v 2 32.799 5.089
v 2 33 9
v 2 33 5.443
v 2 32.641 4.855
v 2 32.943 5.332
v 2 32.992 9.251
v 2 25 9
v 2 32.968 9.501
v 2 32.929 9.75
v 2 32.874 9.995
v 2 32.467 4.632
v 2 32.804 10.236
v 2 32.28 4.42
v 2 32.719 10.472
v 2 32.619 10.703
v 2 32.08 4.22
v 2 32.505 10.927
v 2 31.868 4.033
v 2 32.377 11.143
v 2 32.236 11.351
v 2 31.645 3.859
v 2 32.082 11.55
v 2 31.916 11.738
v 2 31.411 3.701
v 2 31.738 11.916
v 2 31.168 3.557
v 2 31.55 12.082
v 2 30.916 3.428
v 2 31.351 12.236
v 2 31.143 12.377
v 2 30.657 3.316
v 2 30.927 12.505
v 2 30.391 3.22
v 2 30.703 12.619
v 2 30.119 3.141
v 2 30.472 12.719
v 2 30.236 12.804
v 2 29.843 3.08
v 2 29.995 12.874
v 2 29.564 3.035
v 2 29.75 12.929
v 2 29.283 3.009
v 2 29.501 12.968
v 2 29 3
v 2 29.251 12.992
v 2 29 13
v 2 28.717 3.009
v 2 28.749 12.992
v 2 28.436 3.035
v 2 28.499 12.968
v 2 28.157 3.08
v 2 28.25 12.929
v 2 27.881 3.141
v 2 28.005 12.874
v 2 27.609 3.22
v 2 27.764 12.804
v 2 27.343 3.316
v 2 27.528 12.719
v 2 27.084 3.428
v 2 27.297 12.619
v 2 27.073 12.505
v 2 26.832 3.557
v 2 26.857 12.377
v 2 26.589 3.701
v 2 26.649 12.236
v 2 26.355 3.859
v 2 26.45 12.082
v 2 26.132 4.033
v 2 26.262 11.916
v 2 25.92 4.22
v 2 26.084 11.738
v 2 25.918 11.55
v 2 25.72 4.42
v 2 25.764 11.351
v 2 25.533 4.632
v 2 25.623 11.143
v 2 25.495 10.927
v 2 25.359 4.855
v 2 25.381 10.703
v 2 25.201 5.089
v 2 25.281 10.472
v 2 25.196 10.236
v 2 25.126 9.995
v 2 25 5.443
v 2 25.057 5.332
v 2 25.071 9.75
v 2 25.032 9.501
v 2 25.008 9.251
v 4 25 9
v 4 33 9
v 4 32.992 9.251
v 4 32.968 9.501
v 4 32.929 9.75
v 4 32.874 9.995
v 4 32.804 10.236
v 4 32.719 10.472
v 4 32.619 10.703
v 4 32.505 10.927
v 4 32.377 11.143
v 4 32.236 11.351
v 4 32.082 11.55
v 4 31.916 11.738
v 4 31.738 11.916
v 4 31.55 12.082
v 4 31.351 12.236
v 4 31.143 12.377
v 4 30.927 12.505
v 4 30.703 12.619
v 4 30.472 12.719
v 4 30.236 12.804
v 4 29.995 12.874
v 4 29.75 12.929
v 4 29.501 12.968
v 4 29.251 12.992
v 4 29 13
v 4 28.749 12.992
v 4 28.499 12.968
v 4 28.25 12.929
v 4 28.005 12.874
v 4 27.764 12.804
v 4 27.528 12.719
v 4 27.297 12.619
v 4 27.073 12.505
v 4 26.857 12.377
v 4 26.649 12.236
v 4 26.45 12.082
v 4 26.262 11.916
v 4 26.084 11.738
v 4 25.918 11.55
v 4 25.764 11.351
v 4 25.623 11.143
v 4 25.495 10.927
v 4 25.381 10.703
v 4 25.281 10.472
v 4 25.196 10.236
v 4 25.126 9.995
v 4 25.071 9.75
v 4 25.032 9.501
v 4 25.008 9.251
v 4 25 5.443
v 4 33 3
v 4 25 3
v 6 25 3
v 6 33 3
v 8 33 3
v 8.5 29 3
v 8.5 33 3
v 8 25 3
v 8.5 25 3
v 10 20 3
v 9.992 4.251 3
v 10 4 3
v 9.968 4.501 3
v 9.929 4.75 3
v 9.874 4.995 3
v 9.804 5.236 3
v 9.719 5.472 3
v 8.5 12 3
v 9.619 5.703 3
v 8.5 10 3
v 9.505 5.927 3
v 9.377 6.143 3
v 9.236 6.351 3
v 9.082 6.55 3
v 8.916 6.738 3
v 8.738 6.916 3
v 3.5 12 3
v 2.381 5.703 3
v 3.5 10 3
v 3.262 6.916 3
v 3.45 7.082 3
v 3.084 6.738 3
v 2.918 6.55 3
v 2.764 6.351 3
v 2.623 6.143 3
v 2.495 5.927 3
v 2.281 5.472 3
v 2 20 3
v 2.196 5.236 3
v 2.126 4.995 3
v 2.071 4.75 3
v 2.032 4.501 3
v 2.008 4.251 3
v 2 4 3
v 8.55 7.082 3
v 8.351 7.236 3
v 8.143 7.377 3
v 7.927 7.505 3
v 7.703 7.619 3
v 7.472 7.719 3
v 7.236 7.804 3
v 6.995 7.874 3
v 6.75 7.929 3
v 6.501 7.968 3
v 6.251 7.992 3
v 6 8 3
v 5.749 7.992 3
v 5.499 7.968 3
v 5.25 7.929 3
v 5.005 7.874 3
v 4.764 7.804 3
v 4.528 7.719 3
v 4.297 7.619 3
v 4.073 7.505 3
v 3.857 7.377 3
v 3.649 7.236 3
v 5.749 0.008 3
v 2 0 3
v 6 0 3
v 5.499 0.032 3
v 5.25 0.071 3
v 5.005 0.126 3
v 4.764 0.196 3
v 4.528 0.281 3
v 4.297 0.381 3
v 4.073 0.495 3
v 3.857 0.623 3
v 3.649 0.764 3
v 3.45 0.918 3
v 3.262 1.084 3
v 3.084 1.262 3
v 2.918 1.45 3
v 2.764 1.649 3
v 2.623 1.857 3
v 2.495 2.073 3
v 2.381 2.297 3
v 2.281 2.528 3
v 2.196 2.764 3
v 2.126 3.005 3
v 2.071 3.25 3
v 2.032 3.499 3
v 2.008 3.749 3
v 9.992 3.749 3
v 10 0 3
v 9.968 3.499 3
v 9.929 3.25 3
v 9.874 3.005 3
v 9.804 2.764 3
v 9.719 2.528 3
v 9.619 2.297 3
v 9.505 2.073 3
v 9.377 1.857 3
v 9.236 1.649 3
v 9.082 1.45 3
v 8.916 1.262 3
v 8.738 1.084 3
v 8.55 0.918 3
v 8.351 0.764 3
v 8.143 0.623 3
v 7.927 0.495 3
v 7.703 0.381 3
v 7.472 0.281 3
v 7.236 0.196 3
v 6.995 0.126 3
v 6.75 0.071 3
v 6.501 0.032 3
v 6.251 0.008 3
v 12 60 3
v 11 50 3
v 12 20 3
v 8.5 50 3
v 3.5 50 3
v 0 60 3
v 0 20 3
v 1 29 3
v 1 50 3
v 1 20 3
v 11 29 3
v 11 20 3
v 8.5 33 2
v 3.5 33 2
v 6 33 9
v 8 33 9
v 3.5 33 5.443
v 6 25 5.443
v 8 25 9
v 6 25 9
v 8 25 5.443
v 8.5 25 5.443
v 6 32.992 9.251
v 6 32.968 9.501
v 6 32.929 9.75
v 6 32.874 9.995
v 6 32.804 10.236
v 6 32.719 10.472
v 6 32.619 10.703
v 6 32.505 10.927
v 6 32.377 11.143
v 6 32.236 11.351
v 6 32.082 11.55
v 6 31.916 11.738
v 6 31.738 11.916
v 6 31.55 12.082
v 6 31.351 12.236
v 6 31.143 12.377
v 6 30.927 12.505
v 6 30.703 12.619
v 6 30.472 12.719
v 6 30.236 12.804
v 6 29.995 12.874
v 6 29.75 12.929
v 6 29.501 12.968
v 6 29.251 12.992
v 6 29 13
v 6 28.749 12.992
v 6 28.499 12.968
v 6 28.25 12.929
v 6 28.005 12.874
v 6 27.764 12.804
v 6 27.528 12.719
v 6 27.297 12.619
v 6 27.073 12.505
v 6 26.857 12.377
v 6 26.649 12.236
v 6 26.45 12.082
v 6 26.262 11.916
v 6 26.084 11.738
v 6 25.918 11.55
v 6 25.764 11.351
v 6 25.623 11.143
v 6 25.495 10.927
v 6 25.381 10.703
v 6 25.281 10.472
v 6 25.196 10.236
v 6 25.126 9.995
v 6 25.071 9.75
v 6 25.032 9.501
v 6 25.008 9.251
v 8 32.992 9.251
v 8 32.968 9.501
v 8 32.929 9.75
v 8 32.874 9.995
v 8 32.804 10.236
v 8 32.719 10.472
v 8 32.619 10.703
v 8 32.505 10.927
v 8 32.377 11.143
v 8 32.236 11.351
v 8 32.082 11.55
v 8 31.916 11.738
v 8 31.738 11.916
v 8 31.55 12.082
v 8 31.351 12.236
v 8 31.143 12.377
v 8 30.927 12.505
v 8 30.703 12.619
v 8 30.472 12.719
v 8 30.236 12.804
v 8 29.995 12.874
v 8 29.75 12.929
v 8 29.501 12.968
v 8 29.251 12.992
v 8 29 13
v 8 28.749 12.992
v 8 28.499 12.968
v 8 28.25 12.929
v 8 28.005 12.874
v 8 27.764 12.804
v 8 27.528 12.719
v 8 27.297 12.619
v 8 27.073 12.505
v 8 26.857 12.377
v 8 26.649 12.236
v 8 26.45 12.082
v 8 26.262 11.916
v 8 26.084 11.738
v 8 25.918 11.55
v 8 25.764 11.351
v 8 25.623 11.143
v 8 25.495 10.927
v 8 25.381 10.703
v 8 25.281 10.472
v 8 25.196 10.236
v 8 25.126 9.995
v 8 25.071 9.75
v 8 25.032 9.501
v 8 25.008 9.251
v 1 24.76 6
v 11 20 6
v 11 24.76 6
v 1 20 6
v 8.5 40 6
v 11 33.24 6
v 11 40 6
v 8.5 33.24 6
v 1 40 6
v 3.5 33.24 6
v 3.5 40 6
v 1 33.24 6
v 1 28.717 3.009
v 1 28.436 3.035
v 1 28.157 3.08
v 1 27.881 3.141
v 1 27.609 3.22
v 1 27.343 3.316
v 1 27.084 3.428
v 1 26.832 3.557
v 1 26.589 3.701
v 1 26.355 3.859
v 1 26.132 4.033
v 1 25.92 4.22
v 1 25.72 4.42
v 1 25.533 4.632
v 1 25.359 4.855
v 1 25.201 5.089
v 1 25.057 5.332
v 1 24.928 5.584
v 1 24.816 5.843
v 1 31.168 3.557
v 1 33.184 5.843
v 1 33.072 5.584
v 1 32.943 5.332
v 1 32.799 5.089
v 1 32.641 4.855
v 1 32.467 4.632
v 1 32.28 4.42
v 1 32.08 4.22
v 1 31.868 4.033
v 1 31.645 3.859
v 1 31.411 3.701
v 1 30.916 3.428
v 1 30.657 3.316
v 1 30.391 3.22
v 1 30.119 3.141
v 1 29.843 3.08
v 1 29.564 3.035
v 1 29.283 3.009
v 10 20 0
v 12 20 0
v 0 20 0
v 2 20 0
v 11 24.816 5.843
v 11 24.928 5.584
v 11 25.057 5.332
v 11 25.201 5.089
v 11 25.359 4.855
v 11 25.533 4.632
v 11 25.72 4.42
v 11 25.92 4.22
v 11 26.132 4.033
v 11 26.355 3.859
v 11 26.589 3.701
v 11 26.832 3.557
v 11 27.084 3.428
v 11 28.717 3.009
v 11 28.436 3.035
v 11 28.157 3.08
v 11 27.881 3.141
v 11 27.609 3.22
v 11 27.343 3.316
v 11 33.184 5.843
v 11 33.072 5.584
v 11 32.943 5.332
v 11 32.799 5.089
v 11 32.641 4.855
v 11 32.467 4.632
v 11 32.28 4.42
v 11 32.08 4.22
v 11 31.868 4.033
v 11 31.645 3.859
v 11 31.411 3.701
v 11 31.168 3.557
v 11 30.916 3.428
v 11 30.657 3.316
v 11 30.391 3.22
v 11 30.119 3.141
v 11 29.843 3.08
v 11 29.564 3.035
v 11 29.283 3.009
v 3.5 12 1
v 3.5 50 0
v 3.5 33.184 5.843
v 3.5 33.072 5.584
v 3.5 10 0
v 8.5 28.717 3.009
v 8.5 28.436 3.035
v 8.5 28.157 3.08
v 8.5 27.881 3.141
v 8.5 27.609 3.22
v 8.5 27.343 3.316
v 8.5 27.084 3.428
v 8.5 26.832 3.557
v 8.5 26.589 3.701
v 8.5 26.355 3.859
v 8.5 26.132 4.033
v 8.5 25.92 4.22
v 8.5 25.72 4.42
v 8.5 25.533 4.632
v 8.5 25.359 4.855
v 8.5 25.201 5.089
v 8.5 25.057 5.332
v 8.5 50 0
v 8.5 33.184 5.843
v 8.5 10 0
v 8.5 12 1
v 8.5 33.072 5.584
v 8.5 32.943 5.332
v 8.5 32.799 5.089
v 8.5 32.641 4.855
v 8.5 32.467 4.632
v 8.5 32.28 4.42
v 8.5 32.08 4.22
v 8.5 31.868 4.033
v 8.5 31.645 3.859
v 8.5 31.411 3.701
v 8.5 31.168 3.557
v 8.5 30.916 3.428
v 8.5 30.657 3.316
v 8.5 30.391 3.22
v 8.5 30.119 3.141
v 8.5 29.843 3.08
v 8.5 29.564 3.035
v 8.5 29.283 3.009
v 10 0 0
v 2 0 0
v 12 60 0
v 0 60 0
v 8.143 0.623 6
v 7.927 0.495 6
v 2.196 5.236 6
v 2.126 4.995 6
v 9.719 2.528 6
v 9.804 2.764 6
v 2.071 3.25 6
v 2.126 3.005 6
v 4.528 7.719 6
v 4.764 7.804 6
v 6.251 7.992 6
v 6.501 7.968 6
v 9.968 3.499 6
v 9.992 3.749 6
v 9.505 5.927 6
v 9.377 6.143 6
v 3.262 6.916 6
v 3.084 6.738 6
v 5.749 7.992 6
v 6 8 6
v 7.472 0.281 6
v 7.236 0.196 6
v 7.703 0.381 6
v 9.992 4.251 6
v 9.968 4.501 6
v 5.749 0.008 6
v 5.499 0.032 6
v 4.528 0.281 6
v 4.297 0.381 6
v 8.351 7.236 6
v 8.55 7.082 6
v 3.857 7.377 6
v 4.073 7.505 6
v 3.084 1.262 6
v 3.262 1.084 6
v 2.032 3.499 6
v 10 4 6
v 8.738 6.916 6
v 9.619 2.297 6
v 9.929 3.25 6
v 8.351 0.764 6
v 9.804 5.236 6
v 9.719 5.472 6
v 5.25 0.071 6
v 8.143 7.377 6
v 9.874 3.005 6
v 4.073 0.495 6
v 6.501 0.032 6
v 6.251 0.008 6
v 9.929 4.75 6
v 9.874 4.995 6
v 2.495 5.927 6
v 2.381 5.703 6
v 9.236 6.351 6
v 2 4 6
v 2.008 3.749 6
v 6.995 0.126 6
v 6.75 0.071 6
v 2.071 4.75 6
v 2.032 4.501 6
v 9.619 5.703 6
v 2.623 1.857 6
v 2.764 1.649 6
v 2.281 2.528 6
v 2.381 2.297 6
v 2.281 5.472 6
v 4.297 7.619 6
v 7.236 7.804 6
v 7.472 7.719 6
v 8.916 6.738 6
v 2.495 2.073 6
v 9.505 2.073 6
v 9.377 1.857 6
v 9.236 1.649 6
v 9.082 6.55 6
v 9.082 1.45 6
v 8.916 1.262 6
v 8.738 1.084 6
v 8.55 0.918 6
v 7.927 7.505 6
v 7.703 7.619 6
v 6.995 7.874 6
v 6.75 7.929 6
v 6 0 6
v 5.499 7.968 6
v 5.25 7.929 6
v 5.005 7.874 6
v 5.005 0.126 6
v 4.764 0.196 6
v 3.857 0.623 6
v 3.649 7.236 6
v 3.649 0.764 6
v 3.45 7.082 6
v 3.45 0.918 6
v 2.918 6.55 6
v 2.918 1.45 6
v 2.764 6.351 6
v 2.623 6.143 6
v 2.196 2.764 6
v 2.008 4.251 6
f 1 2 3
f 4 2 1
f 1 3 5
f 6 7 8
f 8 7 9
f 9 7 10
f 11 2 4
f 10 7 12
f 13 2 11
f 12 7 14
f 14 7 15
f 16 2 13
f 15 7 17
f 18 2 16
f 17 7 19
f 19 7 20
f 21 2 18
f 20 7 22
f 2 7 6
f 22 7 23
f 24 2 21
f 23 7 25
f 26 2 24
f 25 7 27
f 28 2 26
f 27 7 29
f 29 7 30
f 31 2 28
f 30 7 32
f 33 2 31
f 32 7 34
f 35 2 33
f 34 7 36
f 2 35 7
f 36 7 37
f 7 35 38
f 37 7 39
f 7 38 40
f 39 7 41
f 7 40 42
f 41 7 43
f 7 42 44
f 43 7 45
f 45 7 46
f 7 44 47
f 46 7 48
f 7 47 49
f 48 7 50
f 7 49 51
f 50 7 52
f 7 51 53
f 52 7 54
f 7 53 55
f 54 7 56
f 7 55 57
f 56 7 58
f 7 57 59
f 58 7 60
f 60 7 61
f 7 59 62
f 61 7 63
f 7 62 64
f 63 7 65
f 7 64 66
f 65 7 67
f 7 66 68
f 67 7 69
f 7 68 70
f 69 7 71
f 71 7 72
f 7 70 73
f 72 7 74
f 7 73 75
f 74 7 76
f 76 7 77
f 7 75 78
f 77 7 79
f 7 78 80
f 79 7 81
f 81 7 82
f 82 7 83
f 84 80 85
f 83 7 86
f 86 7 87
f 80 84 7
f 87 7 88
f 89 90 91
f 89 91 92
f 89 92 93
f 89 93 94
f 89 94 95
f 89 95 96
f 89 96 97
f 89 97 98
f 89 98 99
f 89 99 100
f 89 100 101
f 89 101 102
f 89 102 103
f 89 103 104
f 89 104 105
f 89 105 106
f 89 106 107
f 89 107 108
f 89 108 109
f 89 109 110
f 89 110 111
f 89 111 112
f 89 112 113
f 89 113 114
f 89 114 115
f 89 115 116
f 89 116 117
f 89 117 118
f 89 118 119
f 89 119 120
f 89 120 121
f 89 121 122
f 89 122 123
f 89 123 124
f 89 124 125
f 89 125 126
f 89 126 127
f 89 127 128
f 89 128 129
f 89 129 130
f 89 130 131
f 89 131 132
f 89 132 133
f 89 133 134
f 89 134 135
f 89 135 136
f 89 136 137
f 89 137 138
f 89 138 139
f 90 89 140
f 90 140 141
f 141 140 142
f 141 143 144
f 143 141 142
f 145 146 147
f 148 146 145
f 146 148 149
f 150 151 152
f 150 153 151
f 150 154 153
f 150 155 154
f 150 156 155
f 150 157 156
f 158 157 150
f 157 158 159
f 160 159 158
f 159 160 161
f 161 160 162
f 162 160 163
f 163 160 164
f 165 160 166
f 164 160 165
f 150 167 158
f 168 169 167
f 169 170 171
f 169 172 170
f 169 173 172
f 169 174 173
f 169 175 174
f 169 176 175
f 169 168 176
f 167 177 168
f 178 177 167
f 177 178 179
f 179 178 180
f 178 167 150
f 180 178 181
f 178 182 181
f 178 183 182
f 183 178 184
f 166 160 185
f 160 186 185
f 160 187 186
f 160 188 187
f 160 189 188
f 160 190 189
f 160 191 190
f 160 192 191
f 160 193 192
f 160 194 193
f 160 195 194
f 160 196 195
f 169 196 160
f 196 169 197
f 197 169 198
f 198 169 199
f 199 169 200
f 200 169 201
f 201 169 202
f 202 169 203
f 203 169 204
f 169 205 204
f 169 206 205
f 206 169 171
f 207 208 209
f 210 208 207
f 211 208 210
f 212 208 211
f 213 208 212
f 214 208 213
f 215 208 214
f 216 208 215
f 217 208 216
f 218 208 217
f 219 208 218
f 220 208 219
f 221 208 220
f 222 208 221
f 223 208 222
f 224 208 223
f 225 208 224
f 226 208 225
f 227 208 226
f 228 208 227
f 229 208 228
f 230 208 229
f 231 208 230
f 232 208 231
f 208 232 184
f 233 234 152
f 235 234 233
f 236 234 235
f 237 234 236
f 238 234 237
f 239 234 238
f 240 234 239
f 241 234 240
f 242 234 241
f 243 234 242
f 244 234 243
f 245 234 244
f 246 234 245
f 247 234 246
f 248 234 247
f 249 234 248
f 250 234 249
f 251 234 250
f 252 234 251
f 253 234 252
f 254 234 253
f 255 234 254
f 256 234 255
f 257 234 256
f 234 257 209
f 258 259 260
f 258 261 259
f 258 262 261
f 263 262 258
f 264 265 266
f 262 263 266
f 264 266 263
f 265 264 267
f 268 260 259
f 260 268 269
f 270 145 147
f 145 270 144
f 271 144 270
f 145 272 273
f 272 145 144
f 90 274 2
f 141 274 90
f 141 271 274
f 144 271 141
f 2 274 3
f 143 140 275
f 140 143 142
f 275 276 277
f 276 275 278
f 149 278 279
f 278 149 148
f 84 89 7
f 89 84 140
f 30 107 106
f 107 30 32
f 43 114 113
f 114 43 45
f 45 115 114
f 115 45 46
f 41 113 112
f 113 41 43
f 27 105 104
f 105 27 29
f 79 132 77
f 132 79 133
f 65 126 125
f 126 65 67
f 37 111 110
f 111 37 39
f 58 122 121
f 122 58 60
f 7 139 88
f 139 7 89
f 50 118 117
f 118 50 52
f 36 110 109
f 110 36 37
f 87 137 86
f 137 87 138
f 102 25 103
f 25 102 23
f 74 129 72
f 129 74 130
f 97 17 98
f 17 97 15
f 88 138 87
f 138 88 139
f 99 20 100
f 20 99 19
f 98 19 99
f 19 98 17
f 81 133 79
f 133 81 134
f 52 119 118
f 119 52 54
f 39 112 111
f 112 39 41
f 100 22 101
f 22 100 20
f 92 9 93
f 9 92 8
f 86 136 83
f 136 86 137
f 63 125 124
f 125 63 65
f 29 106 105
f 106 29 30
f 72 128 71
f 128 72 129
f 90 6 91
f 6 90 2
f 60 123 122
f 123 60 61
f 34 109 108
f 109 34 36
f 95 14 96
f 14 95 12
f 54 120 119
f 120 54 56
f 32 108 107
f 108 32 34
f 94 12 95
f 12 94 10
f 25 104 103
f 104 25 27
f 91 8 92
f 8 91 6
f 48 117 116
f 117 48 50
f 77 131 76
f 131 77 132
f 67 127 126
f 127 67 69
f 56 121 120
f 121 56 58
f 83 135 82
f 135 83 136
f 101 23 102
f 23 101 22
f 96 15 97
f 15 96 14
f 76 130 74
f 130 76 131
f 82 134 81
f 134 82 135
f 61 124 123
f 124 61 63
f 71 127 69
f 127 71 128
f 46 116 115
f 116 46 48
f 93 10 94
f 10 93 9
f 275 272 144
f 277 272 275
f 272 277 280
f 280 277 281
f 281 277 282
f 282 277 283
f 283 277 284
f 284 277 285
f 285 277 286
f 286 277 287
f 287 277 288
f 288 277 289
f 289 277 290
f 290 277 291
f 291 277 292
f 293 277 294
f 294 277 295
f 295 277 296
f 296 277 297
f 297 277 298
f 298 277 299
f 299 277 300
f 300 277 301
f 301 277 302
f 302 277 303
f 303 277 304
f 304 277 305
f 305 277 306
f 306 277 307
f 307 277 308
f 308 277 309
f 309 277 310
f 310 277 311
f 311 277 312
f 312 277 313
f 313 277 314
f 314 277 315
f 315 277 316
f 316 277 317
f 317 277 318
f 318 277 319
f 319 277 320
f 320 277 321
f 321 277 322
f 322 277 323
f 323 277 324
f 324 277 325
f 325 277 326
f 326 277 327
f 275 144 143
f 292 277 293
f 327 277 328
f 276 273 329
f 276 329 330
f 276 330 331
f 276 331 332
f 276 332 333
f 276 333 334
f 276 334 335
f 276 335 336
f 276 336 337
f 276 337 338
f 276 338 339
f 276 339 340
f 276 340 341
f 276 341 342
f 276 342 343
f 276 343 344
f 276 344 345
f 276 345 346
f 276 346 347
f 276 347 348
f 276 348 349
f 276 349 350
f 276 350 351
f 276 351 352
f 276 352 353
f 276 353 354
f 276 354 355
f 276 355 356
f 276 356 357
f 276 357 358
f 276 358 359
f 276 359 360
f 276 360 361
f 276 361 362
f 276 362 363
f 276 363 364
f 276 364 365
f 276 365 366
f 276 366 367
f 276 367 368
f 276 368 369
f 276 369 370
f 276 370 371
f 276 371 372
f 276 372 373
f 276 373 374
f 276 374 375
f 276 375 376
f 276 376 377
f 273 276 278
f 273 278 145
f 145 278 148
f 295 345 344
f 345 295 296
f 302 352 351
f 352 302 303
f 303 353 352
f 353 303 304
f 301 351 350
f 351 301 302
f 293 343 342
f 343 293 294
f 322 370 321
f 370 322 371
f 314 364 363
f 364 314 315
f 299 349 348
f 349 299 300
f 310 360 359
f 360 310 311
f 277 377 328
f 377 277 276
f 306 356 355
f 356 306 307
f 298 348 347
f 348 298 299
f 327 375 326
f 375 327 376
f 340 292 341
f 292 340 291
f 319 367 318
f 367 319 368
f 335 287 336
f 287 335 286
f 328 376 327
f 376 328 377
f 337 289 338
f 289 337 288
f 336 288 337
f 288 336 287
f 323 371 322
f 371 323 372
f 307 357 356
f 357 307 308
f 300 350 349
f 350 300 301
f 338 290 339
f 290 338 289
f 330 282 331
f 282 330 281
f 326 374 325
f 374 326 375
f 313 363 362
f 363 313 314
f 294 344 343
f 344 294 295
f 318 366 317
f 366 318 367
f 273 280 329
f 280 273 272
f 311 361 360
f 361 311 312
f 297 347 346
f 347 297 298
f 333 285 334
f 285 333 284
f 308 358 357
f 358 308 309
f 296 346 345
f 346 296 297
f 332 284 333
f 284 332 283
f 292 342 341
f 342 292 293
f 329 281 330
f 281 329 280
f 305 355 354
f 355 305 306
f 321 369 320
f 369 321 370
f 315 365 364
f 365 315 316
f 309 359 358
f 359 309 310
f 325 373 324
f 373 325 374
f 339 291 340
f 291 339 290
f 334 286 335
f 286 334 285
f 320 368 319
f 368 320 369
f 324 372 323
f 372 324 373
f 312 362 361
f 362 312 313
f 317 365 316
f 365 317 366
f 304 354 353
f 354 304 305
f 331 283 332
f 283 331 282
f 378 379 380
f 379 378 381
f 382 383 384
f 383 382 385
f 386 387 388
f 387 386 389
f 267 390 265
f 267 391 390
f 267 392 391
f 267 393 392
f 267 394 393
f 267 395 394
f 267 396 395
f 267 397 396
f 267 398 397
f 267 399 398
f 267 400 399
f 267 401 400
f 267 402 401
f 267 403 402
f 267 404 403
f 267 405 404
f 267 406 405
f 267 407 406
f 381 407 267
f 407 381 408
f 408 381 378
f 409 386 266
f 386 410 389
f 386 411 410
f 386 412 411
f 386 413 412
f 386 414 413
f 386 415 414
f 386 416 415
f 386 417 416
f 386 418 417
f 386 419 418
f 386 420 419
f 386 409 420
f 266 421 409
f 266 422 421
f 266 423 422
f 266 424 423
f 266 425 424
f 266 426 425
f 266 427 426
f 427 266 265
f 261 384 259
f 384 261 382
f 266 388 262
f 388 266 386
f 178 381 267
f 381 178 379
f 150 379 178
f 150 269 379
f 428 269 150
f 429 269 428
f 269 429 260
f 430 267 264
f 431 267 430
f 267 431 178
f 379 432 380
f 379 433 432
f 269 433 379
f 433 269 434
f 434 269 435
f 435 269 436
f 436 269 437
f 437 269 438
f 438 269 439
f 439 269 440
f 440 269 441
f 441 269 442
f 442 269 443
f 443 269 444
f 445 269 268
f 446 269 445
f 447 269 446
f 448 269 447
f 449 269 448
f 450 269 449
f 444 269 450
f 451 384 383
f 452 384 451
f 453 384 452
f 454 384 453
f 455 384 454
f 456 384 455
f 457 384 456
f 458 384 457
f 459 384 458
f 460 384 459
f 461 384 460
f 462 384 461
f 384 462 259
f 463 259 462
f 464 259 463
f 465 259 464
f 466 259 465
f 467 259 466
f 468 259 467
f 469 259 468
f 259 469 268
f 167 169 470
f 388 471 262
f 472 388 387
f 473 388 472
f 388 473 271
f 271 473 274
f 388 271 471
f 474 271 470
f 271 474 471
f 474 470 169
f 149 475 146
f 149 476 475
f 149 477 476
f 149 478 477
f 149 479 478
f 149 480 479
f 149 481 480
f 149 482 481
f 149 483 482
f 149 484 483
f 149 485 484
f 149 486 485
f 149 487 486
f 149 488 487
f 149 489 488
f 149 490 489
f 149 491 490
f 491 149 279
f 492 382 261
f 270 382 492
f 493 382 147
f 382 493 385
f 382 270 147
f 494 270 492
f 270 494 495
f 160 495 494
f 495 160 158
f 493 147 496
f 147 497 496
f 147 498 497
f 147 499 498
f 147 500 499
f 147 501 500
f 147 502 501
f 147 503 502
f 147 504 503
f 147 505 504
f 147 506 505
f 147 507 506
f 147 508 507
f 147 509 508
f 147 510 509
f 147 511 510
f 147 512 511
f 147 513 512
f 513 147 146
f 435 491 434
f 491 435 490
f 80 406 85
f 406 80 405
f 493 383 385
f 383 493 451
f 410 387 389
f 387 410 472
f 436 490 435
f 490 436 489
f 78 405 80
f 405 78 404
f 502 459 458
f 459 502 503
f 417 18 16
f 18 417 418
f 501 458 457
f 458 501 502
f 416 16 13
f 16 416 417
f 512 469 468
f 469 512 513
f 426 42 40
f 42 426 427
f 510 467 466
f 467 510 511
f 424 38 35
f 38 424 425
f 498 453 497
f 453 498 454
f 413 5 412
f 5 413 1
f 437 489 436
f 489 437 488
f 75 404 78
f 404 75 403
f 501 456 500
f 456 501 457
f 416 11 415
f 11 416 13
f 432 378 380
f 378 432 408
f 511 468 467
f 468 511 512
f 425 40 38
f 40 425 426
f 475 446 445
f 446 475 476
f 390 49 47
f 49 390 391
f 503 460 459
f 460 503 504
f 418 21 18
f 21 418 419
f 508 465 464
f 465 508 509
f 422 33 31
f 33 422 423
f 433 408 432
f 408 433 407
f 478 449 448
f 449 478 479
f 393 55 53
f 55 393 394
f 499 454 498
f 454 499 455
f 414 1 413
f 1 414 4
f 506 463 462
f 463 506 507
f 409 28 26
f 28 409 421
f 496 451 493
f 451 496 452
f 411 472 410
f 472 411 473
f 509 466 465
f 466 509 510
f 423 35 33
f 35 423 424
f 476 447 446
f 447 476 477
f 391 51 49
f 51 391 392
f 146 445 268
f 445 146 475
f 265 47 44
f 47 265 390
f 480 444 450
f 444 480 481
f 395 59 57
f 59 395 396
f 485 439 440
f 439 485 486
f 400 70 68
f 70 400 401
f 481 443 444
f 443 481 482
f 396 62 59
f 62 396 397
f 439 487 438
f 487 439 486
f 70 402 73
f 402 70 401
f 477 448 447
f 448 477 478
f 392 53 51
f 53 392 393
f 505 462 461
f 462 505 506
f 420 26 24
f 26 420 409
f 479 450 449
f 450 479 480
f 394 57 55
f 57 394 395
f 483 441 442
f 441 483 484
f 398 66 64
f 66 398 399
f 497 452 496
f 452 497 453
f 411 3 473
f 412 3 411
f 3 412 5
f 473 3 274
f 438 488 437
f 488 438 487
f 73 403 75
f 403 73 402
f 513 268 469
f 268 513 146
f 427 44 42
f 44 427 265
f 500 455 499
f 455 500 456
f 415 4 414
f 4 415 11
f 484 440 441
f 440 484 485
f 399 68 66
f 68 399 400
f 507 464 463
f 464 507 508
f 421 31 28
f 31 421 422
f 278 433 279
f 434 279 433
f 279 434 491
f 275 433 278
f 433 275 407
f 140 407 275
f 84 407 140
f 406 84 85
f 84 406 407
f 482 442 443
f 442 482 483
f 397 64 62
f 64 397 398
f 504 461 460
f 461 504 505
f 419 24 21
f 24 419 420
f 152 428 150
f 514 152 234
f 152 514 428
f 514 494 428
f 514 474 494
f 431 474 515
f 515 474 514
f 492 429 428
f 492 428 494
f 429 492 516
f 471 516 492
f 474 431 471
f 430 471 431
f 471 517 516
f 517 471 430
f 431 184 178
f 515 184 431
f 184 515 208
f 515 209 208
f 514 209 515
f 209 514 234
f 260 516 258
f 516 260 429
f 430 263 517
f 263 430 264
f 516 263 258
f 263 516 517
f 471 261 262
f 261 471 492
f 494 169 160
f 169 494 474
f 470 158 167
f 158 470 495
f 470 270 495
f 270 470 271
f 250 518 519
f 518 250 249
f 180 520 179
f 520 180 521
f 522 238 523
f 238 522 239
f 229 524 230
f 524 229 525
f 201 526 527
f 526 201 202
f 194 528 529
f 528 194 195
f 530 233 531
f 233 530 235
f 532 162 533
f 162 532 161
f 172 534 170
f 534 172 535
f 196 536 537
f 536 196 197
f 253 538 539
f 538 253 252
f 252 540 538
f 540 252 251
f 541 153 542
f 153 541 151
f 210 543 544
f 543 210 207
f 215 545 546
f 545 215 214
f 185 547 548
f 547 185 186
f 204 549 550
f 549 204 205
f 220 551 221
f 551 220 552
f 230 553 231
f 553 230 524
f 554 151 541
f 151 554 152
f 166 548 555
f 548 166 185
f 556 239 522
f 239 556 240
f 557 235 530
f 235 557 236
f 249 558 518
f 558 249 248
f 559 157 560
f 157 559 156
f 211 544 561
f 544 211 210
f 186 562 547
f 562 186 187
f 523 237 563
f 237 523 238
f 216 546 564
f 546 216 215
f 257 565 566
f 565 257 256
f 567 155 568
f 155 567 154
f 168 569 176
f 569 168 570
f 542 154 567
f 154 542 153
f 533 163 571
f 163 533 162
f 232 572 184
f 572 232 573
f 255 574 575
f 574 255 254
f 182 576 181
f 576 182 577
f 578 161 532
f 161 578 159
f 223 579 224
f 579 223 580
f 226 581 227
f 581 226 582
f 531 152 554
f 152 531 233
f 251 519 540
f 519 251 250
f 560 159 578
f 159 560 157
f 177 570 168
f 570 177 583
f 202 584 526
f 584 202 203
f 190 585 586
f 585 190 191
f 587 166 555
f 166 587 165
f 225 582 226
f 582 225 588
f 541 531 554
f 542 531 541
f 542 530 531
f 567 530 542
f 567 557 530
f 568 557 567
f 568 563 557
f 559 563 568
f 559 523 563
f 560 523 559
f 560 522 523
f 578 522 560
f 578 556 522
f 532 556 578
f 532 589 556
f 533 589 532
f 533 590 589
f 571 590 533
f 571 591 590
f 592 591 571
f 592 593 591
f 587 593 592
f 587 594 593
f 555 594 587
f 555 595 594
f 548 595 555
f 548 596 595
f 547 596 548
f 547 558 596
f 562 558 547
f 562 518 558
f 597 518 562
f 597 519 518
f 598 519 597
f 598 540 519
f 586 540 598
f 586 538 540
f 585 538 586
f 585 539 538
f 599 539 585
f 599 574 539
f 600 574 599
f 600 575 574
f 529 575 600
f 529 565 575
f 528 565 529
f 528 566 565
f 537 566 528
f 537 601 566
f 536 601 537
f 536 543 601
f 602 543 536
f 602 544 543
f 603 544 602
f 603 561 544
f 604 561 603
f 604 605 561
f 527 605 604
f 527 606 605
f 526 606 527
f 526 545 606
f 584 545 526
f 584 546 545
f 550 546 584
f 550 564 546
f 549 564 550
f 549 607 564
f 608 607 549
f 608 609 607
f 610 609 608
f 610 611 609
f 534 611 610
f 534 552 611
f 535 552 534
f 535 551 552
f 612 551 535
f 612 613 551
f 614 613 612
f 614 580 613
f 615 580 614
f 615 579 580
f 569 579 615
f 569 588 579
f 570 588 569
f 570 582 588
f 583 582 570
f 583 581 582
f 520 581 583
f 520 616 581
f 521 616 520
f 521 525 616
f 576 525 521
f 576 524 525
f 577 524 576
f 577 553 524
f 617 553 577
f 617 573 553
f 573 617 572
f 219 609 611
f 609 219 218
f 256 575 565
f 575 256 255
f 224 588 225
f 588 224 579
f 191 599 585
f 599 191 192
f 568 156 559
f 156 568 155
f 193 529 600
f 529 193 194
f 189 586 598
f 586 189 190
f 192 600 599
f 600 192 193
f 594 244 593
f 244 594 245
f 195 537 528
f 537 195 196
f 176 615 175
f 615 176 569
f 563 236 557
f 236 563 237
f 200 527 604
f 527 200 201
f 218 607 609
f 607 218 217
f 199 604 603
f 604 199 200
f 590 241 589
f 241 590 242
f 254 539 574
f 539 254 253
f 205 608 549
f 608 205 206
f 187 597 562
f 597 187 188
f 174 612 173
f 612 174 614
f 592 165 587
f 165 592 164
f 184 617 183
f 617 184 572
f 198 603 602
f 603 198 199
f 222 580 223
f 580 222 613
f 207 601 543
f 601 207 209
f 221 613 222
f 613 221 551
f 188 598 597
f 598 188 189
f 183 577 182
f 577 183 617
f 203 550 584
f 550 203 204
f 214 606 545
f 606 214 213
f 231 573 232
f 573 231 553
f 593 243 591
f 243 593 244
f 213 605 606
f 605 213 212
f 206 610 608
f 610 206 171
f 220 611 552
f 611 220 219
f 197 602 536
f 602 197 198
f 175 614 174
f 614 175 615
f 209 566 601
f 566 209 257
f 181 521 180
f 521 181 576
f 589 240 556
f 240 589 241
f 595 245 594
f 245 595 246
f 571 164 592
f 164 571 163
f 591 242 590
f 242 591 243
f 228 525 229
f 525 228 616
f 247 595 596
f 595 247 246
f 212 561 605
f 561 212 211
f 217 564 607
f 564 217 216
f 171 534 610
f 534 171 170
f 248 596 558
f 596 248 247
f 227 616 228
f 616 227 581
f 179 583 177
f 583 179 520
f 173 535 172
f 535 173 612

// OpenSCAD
electrode = 4; // radius
handlewidth = 12;
handlethickness = 3;
handlelength = 40;
rodlength = 20; // the narrow bit on which the electrode support rests
rodwidth = 8;
slotwidth = 5;
slotlength = handlelength + rodlength - 20;
standoffwidth=8;
standoffheight=6; // the height of the rectangular bit without the circular head
standoffthickness=2;
standoffdistance=25; // distance from 0,0
wedgelength = 21;
wedgedistance=12; // distance from 0,0
supportwidth=handlewidth-2;

// handle
translate([0, 0, 0])
    handle();  
translate([(handlewidth-slotwidth)/2, wedgedistance, handlethickness])
    wedge();
translate([standoffthickness*2, standoffdistance, handlethickness])
    standoff();
translate([standoffthickness*4, standoffdistance, handlethickness])
    standoff();
translate([supportwidth+((handlewidth-supportwidth)/2), 0, handlethickness])
    support();
translate([handlewidth/2, electrode, handlethickness])
    electrodesupport();

// the flat rectangular part that you squeeze between your fingers
module handle() {
     translate([0, 0, 0]) {
        difference() {
            union() {
                translate([(handlewidth-rodwidth)/2, 0, 0])
                    color("red") cube([rodwidth, rodlength, handlethickness]);
                translate([0, rodlength, 0])
                    cube([handlewidth, handlelength, handlethickness]);
            }
            // slot inside the handle
            translate([(handlewidth/2)-(slotwidth/2) , handlelength + rodlength - slotlength - 10, 0]) {
                cube([slotwidth, slotlength, handlethickness]);
            }
        }
    }
}

// the triagular bit into which the standoffs fit
module support() {
    radius = 4;
    rotate([0, -90, 0]) {
        difference() {
            difference()  {
                linear_extrude(supportwidth) {
                    polygon([[0, 20], [0, 50], [3, 40], [3, 20]]);
                }
                translate([0, 0, (supportwidth - slotwidth) / 2])
                    color("red") linear_extrude(slotwidth) {
                        polygon([[0, 50], [3, 40], [3, 25], [0, 25]]);
                    }
            }
            translate([4.5, 29, 0]) {
                cylinder(handlewidth, radius+.5, radius+.5, $fn=100);
            }
        }
    }
}


// the bit where the electrode fits on
module electrodesupport() {
    cylinder(3, electrode, electrode, $fn=100);
}

// the bits in the middle that fit the two parts togehter
module standoff() {
    rotate([0, -90, 0]) {
        color("blue") cube([standoffheight, standoffwidth, standoffthickness]);
        translate([standoffheight, standoffwidth/2, 0]) {
            cylinder(standoffthickness, standoffwidth/2, standoffwidth/2, $fn=100);
        }
    }
}

// the wedge in the slot which keeps the spring in place
module wedge() {
    rotate([0, 90, 0])
    color("green") linear_extrude(slotwidth) {
        polygon([[0,0], [0, wedgelength], [1, wedgelength], [2, 0]]);
    }
}
